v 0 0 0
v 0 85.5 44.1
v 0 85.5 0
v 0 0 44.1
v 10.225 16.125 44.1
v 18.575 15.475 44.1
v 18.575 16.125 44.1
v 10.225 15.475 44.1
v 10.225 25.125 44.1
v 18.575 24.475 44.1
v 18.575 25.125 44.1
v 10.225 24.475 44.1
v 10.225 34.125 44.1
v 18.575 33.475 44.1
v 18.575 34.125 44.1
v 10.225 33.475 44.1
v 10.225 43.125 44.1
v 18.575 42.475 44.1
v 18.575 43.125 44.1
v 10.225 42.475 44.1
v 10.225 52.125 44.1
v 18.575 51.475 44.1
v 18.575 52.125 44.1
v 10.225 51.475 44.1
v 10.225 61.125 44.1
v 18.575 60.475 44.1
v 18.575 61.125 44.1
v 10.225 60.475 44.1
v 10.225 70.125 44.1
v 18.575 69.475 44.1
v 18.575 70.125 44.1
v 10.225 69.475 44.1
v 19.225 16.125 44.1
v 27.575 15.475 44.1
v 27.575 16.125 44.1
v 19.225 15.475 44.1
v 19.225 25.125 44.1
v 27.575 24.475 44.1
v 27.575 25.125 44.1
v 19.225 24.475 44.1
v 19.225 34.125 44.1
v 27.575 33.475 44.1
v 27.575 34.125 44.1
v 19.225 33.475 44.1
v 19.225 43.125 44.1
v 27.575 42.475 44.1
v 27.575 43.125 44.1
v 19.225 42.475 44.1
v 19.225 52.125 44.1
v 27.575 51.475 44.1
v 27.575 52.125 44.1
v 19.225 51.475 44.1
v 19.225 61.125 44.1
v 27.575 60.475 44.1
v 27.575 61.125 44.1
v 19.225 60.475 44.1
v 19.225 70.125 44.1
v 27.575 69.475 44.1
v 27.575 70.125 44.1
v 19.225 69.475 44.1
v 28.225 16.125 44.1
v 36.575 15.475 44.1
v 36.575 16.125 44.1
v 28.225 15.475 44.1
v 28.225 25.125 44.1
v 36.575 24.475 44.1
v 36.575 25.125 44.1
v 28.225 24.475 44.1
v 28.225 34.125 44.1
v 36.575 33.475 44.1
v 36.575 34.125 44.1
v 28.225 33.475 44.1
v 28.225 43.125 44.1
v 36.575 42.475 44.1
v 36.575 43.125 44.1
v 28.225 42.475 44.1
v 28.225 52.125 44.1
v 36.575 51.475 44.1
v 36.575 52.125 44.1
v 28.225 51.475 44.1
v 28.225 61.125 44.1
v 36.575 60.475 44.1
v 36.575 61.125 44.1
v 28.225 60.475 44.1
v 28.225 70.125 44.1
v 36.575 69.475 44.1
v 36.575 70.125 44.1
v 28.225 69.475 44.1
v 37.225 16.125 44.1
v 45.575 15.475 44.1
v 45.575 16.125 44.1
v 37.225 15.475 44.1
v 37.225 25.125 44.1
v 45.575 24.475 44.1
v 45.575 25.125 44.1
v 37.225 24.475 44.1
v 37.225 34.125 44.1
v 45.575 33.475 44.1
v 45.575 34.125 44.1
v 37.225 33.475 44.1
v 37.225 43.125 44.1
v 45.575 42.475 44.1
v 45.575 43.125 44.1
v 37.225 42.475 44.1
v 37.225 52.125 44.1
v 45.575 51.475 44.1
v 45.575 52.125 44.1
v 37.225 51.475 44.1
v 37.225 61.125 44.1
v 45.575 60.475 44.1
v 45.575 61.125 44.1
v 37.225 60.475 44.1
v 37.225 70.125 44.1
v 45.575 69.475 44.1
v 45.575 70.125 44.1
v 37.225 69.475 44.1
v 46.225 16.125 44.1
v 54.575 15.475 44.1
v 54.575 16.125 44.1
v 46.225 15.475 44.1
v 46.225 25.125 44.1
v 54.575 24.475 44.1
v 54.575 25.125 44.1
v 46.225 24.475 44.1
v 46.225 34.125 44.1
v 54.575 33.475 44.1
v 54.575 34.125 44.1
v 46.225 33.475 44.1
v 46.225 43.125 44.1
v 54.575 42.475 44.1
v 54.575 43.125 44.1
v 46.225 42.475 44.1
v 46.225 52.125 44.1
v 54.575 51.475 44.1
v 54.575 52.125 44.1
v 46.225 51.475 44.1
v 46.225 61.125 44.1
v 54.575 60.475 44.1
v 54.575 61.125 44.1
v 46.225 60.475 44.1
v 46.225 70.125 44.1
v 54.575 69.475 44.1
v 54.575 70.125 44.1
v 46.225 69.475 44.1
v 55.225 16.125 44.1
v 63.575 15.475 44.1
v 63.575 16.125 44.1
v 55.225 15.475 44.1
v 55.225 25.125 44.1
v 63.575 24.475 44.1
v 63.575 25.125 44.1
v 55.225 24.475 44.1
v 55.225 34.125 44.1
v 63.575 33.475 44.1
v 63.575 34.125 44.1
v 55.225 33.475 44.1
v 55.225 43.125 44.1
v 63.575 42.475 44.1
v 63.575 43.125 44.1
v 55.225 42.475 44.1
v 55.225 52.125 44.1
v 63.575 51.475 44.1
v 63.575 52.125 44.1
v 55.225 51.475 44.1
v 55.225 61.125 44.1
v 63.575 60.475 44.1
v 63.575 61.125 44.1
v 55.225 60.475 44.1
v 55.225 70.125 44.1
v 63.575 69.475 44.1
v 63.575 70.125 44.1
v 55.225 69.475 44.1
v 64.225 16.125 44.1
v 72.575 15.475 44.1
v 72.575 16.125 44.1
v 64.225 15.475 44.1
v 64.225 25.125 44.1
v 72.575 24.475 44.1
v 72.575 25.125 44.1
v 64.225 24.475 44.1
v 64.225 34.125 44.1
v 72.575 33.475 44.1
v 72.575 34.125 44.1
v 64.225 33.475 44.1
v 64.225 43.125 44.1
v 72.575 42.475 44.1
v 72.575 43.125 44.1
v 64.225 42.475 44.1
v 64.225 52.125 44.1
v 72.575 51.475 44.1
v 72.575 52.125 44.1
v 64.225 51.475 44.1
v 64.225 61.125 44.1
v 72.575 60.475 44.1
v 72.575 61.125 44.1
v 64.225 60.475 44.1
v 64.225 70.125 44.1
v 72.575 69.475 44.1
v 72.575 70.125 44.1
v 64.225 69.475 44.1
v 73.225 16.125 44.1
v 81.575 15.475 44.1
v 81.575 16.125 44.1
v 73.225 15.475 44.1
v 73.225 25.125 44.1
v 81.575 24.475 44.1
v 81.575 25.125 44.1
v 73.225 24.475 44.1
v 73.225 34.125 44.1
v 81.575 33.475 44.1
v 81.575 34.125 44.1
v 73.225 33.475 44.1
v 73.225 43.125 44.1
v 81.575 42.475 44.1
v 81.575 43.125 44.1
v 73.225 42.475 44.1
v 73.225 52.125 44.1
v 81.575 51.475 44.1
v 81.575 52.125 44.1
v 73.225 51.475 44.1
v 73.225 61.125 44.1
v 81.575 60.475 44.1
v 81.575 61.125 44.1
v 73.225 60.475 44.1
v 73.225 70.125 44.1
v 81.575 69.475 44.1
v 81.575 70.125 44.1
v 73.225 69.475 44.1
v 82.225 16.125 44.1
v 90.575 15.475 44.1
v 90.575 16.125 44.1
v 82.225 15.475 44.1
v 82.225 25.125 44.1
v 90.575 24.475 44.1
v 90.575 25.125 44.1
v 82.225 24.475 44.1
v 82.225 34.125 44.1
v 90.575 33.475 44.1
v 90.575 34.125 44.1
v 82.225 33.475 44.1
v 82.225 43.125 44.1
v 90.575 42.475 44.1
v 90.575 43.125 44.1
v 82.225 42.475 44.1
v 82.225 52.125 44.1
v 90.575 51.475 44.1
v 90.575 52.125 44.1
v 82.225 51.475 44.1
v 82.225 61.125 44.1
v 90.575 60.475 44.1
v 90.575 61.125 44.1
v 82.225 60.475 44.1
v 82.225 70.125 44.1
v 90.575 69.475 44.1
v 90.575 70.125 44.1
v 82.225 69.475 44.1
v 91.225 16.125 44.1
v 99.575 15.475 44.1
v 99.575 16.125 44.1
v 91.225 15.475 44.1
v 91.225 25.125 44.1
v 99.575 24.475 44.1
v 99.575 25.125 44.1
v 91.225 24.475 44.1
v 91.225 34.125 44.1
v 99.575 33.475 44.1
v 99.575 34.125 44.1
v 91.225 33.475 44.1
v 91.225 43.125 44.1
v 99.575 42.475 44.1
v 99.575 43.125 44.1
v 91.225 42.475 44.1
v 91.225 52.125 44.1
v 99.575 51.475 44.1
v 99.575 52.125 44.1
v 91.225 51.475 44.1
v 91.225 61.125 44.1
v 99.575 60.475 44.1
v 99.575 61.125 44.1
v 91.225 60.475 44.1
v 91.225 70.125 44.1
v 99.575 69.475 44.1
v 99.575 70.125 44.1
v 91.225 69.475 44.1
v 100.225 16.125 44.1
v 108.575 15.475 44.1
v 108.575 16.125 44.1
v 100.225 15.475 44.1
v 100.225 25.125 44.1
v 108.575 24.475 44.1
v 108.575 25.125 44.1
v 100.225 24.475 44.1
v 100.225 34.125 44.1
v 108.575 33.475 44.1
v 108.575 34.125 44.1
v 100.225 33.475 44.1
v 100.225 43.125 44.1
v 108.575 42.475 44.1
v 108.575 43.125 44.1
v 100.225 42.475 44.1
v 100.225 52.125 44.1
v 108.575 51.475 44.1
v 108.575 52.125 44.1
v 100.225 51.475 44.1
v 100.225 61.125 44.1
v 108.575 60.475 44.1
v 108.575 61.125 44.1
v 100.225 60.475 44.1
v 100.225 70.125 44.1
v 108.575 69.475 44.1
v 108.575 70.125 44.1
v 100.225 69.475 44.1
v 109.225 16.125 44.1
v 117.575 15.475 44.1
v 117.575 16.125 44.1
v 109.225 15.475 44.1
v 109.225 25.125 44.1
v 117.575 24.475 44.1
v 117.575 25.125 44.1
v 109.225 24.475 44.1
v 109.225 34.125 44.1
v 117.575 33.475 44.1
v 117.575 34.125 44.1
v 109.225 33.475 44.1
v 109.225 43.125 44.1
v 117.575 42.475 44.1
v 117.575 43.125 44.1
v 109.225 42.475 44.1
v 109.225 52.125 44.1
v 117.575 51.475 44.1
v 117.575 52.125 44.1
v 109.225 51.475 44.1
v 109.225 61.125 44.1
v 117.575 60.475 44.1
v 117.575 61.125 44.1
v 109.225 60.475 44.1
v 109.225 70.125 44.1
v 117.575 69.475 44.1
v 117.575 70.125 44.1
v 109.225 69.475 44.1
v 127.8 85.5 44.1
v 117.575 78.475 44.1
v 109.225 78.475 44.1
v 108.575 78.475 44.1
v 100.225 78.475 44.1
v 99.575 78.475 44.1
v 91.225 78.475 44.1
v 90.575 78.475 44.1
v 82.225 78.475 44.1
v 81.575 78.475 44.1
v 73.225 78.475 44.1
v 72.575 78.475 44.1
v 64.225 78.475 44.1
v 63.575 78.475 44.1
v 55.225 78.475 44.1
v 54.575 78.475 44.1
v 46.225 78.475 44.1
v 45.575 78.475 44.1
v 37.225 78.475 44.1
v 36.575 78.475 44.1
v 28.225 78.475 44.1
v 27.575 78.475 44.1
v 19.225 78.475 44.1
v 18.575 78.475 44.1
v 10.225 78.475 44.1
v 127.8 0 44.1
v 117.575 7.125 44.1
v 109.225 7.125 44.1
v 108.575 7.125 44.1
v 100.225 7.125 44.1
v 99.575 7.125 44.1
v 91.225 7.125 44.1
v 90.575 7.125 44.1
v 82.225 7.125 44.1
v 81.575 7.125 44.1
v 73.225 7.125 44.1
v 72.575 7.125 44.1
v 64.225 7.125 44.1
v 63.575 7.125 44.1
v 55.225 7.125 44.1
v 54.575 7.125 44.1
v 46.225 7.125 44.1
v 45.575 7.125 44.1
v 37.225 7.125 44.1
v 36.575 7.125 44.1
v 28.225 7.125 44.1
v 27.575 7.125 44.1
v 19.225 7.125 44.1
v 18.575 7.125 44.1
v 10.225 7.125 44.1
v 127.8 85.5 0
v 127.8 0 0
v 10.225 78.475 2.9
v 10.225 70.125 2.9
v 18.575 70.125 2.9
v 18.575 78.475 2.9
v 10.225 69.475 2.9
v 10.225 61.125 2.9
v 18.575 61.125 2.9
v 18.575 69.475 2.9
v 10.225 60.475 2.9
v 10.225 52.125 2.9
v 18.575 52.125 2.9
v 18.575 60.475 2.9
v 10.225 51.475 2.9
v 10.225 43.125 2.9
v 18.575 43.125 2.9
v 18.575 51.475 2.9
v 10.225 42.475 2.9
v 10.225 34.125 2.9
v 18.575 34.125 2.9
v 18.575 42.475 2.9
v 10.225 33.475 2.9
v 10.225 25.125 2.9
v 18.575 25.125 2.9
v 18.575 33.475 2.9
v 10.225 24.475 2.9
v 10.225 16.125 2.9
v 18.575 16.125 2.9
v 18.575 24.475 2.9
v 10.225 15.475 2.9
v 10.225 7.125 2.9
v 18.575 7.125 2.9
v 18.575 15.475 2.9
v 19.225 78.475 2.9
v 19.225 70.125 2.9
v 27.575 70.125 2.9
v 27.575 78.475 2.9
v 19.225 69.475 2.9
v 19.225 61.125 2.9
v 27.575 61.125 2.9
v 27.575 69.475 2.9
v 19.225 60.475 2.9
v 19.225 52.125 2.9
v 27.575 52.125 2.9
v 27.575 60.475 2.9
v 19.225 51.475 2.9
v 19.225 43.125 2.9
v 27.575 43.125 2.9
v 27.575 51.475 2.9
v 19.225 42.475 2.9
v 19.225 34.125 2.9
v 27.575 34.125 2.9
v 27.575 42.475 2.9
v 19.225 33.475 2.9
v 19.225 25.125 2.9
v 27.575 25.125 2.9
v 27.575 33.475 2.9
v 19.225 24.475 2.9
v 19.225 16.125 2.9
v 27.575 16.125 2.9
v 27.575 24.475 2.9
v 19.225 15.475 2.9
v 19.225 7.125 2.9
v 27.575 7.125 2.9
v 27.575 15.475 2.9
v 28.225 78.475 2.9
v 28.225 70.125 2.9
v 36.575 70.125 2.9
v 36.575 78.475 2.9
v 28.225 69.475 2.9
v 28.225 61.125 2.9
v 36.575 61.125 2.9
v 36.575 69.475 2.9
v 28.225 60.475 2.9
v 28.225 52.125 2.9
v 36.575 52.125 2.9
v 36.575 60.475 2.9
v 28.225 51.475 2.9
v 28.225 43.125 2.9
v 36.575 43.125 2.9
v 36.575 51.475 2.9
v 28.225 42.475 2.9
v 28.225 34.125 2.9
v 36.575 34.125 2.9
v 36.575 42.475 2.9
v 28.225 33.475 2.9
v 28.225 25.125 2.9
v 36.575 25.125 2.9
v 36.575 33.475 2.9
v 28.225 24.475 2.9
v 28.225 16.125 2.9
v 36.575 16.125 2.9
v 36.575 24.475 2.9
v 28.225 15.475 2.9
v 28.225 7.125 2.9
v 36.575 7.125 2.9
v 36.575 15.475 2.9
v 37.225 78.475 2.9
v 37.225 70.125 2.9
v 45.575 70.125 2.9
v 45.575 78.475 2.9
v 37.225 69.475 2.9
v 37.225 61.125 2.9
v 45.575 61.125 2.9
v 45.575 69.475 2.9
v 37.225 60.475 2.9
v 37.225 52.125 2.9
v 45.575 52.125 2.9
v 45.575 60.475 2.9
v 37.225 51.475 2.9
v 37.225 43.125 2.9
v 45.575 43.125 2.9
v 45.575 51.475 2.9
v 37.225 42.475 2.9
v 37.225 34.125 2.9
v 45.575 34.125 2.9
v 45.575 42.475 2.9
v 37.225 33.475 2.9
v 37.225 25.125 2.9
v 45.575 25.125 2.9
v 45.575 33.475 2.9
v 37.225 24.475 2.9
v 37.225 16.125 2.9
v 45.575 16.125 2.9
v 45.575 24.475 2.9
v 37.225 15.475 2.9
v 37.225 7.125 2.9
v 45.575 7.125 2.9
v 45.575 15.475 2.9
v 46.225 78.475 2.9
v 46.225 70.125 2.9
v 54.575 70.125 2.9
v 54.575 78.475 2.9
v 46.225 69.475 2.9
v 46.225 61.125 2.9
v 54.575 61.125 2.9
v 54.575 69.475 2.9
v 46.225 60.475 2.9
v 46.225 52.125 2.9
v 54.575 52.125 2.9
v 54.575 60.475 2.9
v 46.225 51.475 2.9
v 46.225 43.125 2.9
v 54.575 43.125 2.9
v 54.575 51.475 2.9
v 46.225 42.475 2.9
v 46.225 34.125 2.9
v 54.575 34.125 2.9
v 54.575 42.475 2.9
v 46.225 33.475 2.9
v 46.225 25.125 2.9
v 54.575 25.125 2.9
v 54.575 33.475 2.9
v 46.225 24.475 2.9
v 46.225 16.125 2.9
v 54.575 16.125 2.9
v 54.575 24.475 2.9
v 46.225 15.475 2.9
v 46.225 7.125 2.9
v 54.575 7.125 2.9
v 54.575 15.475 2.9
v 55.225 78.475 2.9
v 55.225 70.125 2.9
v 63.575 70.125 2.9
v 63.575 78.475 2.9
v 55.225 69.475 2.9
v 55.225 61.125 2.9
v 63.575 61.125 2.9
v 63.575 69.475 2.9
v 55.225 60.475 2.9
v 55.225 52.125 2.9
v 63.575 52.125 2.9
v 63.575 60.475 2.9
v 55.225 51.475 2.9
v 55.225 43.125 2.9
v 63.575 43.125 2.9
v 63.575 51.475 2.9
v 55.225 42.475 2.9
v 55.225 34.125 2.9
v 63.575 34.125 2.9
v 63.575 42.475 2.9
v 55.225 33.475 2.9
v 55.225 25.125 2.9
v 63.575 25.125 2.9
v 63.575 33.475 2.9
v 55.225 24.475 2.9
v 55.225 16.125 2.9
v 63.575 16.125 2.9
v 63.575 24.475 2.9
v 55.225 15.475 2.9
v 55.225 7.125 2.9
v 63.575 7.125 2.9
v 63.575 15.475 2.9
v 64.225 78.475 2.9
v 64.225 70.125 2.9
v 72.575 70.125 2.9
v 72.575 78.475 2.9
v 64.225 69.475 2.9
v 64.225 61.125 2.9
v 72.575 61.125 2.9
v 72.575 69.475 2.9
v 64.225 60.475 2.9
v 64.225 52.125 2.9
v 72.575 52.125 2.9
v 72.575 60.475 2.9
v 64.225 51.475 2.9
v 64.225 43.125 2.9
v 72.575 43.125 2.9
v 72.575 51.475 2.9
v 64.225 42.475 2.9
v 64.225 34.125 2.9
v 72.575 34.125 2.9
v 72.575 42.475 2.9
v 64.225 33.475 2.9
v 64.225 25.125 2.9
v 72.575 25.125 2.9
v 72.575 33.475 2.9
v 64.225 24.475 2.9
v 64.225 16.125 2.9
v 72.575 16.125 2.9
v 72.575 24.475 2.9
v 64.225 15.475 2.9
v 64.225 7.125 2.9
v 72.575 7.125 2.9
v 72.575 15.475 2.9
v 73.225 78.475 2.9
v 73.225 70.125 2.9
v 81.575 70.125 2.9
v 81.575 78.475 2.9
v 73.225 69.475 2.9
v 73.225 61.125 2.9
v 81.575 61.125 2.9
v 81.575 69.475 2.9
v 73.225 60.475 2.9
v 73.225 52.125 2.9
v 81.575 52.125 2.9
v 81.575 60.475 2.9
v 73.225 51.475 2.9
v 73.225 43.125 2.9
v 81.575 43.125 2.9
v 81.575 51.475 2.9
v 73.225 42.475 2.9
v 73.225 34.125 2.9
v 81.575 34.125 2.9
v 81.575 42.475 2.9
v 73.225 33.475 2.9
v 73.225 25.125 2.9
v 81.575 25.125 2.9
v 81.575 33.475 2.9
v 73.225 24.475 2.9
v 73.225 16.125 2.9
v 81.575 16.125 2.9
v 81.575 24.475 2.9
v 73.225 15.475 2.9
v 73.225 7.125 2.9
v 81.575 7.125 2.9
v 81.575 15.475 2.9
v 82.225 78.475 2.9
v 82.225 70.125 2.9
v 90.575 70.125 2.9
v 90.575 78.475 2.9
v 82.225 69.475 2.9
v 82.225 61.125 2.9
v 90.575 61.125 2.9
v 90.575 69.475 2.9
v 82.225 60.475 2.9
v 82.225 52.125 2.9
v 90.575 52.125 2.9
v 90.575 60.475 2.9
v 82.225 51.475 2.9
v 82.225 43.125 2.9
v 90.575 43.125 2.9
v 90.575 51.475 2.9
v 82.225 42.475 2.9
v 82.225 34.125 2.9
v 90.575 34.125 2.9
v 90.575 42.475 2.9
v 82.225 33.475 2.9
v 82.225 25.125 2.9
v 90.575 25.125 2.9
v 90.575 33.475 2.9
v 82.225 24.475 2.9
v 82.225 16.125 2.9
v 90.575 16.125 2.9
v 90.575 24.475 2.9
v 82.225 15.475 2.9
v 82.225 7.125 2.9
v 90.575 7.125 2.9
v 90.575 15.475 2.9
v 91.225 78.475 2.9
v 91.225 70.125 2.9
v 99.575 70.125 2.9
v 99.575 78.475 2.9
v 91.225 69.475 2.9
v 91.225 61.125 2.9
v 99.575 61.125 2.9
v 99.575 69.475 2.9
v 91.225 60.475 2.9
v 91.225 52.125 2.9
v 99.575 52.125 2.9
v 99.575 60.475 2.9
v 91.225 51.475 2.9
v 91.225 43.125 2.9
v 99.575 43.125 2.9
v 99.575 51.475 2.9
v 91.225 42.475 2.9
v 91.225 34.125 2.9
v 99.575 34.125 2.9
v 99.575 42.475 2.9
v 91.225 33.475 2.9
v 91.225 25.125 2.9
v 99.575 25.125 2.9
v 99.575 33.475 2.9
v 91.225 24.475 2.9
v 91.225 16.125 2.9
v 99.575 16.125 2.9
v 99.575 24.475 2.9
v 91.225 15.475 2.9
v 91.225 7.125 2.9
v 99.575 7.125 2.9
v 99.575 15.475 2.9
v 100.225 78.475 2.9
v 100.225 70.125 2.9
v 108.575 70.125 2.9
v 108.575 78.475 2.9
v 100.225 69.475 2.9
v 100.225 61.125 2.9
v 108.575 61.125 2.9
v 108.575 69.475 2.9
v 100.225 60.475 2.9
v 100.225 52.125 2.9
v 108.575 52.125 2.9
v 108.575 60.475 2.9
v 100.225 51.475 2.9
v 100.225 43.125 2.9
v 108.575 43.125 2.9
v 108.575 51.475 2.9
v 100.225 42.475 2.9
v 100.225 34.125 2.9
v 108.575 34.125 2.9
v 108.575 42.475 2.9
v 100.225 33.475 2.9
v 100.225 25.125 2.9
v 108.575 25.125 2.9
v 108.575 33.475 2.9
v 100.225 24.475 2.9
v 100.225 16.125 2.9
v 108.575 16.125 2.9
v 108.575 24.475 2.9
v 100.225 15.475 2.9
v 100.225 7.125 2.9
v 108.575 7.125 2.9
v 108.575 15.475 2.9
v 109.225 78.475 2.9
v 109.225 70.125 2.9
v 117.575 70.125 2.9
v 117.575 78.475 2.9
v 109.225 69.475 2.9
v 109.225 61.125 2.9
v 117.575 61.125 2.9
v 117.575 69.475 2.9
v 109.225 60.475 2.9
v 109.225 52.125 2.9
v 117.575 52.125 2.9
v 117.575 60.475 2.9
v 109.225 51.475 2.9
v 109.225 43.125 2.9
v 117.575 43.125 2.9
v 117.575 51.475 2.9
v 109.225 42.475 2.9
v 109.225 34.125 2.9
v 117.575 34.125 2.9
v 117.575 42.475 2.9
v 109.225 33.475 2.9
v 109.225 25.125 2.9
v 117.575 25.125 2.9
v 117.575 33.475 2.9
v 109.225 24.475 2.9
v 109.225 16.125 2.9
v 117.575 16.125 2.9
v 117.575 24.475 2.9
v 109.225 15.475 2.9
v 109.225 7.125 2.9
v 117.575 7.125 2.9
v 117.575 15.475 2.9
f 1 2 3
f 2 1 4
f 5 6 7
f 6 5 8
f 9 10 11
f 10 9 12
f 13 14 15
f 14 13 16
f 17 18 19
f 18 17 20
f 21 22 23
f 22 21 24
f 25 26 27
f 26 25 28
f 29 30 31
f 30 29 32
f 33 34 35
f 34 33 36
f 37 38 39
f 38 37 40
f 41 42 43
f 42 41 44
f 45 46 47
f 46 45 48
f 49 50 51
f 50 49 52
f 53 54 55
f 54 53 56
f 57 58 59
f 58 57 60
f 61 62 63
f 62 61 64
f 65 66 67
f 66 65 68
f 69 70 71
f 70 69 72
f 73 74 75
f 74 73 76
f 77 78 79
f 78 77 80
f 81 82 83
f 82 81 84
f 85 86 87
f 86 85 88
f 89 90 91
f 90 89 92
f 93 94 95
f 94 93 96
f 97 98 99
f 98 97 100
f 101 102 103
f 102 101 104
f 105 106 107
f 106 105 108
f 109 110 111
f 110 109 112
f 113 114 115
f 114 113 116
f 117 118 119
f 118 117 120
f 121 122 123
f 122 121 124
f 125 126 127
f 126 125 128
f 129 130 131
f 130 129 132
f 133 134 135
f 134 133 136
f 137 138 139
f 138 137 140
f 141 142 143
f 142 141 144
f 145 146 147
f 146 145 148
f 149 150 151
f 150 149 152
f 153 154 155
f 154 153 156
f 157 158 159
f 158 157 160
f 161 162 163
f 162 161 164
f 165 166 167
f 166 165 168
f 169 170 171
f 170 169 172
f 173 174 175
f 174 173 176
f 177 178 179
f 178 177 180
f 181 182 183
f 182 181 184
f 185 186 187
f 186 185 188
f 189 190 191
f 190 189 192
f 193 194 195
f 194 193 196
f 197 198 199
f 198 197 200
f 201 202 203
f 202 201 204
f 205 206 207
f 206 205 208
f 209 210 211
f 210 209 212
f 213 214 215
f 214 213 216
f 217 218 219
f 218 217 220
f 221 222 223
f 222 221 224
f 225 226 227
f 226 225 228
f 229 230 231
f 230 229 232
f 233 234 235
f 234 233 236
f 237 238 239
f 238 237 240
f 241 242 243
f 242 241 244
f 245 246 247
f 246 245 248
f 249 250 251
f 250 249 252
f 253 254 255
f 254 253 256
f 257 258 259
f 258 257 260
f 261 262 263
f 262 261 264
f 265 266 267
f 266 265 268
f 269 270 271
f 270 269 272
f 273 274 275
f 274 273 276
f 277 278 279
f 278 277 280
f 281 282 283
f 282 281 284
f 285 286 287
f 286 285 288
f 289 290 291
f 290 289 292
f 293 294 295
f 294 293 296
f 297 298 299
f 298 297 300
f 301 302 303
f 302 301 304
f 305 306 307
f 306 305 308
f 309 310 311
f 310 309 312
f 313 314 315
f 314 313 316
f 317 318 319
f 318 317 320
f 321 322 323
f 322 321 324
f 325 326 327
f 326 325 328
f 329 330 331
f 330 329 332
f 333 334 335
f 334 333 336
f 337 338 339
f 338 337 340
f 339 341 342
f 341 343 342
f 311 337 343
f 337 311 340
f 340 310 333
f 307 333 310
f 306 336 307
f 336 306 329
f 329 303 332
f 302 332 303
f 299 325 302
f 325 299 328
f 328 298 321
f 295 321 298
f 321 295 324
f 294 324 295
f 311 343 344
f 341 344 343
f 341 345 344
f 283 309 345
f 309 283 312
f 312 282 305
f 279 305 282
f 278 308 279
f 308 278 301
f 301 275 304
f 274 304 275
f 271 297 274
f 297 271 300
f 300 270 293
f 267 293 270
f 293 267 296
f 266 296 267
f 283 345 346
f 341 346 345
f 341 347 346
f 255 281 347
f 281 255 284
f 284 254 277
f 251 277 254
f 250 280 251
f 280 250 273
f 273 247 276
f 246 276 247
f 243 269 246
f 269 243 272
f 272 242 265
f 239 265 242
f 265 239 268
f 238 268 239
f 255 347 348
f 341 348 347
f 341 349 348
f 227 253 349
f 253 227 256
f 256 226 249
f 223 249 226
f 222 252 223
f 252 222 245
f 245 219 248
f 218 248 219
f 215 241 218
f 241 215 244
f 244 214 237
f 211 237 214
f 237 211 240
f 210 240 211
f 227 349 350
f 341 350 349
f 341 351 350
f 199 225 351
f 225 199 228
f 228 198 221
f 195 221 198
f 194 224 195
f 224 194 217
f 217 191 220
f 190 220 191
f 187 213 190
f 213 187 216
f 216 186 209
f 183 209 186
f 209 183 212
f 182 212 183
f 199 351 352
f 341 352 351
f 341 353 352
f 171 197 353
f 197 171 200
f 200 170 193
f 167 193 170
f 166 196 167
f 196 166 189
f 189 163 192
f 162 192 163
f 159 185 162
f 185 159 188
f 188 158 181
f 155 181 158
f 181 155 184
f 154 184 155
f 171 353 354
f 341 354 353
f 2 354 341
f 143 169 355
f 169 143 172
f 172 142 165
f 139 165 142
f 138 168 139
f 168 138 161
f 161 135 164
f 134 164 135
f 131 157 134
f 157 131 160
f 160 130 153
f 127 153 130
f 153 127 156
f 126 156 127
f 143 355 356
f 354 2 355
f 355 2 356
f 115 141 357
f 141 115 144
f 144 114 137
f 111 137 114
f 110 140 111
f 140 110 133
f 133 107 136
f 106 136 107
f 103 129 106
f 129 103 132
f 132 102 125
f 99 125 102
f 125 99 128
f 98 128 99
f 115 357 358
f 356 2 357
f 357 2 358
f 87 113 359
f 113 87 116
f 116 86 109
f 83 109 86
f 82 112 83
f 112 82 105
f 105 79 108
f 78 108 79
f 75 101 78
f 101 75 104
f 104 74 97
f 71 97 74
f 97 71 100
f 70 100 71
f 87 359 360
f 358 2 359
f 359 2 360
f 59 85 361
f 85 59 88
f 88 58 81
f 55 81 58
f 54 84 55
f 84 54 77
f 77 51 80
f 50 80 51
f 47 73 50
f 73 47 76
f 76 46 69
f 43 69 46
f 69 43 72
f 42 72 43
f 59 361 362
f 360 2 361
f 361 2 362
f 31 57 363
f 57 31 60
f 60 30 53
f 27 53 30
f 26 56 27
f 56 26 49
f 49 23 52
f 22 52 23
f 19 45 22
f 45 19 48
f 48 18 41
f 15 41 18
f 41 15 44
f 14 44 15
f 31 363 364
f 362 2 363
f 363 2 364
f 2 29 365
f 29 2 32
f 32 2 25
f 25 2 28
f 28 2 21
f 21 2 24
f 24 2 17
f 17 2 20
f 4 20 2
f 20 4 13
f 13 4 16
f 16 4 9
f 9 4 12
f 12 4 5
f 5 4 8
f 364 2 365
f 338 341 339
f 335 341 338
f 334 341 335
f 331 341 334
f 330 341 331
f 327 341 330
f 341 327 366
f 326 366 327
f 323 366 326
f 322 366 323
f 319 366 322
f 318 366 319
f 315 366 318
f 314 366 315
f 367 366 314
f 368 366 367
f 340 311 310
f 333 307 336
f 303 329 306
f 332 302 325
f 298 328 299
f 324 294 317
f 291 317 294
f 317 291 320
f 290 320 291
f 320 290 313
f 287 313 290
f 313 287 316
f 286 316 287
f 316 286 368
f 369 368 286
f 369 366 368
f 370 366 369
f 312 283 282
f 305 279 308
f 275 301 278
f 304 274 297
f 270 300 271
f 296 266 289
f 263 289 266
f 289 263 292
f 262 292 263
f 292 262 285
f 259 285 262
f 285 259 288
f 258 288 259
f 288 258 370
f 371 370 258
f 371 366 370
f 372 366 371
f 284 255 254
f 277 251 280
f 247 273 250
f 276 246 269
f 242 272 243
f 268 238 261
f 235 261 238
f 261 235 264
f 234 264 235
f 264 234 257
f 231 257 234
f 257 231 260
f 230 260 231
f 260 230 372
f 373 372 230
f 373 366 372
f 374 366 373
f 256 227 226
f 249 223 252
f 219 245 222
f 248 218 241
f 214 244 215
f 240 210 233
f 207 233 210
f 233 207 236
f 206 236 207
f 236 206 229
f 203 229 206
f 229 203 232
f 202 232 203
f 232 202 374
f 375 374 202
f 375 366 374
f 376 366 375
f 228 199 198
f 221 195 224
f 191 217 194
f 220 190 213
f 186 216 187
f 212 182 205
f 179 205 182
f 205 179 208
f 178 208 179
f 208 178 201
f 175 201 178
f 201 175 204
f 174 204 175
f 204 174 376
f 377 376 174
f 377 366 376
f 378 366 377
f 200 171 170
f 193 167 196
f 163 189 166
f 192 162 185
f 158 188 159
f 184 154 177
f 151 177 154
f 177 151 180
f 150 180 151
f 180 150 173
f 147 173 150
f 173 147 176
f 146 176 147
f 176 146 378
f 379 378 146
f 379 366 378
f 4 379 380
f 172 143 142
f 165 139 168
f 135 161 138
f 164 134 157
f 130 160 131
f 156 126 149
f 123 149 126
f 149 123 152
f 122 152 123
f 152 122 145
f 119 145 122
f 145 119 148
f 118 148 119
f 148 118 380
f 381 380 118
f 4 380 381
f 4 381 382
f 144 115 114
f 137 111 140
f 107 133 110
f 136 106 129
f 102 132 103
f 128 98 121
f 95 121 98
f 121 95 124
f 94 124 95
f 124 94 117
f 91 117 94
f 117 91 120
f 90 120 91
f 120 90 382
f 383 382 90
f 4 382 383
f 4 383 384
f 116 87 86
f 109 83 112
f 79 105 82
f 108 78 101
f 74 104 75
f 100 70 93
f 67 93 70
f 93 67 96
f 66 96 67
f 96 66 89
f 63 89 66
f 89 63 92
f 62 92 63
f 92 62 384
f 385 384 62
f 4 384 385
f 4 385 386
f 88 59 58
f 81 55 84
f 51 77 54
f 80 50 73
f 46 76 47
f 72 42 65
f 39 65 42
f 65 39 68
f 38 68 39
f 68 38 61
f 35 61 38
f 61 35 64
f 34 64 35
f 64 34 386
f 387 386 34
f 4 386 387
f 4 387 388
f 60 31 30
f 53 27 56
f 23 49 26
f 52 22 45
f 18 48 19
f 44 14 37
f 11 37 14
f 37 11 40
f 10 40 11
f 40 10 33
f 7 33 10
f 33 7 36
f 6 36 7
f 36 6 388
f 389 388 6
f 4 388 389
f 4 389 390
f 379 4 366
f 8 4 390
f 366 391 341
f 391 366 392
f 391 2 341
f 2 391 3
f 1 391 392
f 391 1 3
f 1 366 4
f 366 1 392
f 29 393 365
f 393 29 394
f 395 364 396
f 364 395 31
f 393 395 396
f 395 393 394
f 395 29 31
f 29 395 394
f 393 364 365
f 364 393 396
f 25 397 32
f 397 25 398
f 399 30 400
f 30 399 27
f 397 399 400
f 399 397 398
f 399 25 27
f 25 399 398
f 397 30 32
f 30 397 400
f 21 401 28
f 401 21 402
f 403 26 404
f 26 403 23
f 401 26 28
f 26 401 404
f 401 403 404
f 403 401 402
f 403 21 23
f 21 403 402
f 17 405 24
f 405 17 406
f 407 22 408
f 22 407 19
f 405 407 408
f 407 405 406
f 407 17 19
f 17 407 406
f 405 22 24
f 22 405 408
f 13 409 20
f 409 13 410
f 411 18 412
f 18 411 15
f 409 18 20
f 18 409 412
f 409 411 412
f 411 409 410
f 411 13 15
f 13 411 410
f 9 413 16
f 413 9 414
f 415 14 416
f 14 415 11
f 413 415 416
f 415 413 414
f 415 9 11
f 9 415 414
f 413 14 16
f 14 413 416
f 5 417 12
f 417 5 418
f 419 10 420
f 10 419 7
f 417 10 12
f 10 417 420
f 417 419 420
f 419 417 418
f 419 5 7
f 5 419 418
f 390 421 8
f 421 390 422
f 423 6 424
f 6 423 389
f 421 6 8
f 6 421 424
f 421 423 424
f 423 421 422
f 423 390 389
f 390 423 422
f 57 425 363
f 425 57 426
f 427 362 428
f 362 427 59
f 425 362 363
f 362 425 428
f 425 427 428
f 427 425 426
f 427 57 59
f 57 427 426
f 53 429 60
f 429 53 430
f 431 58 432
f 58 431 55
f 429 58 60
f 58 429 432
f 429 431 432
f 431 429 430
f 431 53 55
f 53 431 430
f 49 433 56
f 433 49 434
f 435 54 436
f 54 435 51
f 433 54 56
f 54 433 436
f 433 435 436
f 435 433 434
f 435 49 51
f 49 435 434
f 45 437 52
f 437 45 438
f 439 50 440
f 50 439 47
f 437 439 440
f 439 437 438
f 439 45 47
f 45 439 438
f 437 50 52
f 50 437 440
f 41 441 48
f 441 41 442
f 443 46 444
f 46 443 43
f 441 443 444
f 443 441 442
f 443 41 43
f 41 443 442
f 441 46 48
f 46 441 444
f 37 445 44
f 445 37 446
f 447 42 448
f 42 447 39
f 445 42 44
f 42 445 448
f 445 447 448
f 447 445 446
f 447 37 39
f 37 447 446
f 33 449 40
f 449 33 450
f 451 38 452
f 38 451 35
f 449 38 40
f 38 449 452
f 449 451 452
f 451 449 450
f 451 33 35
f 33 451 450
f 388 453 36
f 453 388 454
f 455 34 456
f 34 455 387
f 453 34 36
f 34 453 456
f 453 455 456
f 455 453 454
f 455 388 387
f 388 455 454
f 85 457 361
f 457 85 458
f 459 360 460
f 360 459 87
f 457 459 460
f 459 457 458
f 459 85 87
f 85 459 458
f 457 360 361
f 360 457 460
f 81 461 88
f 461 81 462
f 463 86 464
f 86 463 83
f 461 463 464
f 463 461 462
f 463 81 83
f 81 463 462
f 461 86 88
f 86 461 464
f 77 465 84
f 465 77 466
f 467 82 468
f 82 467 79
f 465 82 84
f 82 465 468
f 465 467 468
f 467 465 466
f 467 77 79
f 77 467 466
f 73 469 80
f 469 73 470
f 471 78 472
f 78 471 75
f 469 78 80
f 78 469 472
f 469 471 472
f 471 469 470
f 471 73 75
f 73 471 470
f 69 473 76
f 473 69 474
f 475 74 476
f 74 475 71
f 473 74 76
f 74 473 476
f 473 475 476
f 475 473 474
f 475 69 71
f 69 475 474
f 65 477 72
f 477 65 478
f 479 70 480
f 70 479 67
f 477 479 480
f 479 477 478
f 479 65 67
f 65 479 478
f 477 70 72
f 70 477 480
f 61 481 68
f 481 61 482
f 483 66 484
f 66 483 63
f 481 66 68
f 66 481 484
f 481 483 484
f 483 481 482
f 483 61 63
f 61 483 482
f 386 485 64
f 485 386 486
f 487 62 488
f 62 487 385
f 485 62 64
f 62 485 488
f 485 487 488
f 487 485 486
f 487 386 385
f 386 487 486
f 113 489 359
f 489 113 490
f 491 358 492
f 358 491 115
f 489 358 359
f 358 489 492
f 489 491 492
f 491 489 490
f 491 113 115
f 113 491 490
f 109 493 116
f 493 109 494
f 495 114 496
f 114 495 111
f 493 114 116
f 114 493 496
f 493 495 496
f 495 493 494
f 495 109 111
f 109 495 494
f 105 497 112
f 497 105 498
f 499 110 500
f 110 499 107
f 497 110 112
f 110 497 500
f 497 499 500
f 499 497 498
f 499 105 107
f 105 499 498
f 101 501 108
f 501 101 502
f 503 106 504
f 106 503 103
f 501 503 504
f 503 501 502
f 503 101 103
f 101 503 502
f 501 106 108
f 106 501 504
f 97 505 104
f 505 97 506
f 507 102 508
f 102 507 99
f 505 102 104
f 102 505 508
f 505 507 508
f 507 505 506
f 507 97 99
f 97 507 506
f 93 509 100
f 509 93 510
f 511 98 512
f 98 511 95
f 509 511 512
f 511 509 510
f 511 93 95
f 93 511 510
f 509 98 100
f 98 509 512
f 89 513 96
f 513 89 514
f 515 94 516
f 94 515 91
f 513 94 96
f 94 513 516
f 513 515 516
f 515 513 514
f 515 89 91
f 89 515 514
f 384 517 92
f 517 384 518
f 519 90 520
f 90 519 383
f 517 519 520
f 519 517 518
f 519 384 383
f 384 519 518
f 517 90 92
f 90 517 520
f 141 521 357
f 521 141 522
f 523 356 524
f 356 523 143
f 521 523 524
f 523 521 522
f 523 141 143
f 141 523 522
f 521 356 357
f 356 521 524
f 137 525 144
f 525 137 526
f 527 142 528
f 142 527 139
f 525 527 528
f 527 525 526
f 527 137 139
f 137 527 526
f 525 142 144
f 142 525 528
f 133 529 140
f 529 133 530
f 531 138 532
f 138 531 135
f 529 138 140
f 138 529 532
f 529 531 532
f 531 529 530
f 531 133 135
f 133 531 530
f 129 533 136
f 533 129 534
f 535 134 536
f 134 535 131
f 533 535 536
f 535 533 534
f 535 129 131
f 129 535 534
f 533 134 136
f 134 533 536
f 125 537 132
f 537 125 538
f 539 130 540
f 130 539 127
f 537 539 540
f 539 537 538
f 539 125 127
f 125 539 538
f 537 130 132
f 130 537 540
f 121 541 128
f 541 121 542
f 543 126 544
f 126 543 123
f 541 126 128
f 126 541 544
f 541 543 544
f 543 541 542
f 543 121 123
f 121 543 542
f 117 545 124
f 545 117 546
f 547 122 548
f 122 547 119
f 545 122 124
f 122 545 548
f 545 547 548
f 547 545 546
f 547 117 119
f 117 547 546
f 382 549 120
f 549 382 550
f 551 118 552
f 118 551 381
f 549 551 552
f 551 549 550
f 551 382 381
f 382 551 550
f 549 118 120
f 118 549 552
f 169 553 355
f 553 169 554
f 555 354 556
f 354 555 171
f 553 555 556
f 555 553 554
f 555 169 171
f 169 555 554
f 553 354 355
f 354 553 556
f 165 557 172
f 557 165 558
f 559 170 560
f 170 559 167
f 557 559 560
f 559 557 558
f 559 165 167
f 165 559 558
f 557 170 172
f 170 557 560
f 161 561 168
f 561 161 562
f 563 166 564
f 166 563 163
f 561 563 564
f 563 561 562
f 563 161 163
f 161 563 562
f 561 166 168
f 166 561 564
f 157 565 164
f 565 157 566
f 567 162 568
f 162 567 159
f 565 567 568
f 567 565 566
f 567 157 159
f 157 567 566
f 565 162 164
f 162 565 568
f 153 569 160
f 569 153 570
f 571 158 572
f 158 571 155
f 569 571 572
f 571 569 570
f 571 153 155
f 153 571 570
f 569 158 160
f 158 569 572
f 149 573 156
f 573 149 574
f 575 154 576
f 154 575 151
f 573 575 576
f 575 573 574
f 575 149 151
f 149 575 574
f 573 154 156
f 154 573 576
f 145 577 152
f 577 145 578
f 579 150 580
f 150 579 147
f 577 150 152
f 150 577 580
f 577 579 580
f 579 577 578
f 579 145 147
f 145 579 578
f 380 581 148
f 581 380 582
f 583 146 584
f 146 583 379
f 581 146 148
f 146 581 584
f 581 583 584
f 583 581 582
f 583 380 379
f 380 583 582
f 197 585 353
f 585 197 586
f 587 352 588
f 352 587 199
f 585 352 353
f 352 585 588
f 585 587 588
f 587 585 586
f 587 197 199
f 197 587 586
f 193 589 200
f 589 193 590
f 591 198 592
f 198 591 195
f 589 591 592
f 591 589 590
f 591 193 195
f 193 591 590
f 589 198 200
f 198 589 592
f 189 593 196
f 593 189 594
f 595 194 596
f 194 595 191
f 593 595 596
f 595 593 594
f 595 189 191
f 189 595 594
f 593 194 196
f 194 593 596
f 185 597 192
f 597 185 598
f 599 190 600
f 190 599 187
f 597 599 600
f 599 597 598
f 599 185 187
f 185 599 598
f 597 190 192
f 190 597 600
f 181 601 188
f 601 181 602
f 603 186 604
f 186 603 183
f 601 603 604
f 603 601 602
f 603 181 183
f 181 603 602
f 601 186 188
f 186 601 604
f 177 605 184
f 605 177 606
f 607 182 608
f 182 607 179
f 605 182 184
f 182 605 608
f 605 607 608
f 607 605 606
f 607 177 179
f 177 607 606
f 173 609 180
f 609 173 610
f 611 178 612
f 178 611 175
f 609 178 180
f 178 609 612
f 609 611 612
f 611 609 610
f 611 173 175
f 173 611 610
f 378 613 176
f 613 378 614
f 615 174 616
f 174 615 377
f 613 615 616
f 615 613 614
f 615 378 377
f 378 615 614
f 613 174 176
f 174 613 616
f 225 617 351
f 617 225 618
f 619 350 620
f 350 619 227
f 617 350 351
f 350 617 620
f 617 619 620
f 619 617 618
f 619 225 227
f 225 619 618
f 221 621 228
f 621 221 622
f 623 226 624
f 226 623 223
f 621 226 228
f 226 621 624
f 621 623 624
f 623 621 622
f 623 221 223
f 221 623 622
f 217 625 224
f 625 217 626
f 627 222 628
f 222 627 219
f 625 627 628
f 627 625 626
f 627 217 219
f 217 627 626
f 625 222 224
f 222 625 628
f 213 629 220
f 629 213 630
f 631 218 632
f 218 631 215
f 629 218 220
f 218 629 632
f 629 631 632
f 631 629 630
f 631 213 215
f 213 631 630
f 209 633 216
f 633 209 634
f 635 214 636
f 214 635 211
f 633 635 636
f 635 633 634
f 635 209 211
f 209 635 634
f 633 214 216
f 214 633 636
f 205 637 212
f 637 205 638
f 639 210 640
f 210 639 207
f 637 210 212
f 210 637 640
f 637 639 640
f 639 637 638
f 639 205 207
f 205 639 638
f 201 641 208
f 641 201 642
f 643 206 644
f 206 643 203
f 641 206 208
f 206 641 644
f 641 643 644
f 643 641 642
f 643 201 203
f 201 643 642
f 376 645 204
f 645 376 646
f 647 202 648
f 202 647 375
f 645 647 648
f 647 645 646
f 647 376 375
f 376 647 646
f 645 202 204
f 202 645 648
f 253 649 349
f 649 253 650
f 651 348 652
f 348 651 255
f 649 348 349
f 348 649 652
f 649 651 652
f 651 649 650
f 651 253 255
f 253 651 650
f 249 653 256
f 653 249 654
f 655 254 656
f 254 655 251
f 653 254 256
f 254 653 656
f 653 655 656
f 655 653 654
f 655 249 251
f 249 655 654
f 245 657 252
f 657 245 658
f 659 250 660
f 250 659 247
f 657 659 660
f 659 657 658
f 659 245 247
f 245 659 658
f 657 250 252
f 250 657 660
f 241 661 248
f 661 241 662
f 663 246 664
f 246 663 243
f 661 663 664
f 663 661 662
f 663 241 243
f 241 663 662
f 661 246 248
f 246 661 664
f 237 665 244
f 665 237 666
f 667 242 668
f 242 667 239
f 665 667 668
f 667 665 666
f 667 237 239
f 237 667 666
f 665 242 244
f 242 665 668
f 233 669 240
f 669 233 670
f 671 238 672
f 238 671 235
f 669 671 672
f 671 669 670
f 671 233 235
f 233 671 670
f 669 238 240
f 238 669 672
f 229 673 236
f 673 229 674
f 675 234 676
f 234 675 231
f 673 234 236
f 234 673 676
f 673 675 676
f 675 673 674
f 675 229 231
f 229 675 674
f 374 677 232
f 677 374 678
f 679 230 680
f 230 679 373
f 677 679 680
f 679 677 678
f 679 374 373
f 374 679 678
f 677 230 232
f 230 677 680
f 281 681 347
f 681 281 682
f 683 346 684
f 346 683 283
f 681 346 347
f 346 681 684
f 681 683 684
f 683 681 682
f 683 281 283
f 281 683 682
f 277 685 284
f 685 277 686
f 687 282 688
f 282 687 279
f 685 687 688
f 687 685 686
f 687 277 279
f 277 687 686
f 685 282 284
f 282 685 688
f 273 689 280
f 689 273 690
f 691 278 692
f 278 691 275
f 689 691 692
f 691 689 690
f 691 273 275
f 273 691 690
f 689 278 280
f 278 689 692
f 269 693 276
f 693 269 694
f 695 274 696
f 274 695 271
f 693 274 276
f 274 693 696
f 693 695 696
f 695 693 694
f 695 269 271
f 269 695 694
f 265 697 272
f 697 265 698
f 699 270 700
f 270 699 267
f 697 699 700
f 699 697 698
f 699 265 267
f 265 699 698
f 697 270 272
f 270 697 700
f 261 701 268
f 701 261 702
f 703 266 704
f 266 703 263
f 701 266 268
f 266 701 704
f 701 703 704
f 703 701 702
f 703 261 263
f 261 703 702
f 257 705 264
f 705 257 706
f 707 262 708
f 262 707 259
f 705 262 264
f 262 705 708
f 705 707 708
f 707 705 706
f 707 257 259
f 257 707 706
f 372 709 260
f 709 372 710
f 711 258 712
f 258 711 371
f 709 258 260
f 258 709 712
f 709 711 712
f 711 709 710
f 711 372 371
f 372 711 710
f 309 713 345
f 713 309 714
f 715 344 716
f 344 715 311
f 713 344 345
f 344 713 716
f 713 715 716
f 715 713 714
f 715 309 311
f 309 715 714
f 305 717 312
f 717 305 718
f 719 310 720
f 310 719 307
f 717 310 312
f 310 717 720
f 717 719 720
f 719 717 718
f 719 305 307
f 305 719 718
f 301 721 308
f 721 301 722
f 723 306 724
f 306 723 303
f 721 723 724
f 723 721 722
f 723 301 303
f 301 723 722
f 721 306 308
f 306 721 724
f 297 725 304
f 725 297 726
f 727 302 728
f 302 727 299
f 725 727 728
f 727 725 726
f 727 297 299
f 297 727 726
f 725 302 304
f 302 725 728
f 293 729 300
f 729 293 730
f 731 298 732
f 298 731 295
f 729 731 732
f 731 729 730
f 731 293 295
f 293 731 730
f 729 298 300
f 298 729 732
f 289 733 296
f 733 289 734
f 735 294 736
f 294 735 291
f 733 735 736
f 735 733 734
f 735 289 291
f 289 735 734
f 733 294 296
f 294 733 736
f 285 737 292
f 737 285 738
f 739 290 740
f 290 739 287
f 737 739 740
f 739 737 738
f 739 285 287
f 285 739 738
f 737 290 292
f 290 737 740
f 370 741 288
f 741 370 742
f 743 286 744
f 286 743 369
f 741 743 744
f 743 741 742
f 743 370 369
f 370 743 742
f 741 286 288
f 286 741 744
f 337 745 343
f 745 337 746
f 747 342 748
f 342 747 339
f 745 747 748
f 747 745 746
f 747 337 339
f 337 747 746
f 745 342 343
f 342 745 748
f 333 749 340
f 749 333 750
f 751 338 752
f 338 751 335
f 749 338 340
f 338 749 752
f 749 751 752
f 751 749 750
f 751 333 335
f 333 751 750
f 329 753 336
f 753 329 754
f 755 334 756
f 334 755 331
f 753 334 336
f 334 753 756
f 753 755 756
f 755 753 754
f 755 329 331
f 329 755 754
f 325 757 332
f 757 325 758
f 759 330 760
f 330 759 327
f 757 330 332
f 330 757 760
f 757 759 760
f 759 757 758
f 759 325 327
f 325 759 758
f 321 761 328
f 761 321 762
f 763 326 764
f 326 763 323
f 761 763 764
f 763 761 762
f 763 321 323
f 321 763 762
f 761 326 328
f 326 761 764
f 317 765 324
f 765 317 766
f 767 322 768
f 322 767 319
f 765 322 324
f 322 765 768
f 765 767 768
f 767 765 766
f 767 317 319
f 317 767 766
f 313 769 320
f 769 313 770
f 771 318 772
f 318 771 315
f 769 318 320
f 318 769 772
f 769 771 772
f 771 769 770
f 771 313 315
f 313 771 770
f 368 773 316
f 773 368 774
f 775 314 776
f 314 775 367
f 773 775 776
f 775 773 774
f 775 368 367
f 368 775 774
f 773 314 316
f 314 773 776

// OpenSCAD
// Eppendorf 96 Protein LoBind Deepwell Plate 2 mL
// loadName: eppendorf_96_wellplate_2000ul_lobind
// Auto-generated by labware_to_stl.py from Opentrons V2 labware definition

$fn = 8;

difference() {
    // ── Labware body ──────────────────────────────────────────────
    cube([127.8000, 85.5000, 44.1000]);

    // ── Well cutouts ──────────────────────────────────────────────
    // Well A1
    translate([10.2250, 70.1250, 2.9000])
        cube([8.3500, 8.3500, 42.2000]);
    // Well B1
    translate([10.2250, 61.1250, 2.9000])
        cube([8.3500, 8.3500, 42.2000]);
    // Well C1
    translate([10.2250, 52.1250, 2.9000])
        cube([8.3500, 8.3500, 42.2000]);
    // Well D1
    translate([10.2250, 43.1250, 2.9000])
        cube([8.3500, 8.3500, 42.2000]);
    // Well E1
    translate([10.2250, 34.1250, 2.9000])
        cube([8.3500, 8.3500, 42.2000]);
    // Well F1
    translate([10.2250, 25.1250, 2.9000])
        cube([8.3500, 8.3500, 42.2000]);
    // Well G1
    translate([10.2250, 16.1250, 2.9000])
        cube([8.3500, 8.3500, 42.2000]);
    // Well H1
    translate([10.2250, 7.1250, 2.9000])
        cube([8.3500, 8.3500, 42.2000]);
    // Well A2
    translate([19.2250, 70.1250, 2.9000])
        cube([8.3500, 8.3500, 42.2000]);
    // Well B2
    translate([19.2250, 61.1250, 2.9000])
        cube([8.3500, 8.3500, 42.2000]);
    // Well C2
    translate([19.2250, 52.1250, 2.9000])
        cube([8.3500, 8.3500, 42.2000]);
    // Well D2
    translate([19.2250, 43.1250, 2.9000])
        cube([8.3500, 8.3500, 42.2000]);
    // Well E2
    translate([19.2250, 34.1250, 2.9000])
        cube([8.3500, 8.3500, 42.2000]);
    // Well F2
    translate([19.2250, 25.1250, 2.9000])
        cube([8.3500, 8.3500, 42.2000]);
    // Well G2
    translate([19.2250, 16.1250, 2.9000])
        cube([8.3500, 8.3500, 42.2000]);
    // Well H2
    translate([19.2250, 7.1250, 2.9000])
        cube([8.3500, 8.3500, 42.2000]);
    // Well A3
    translate([28.2250, 70.1250, 2.9000])
        cube([8.3500, 8.3500, 42.2000]);
    // Well B3
    translate([28.2250, 61.1250, 2.9000])
        cube([8.3500, 8.3500, 42.2000]);
    // Well C3
    translate([28.2250, 52.1250, 2.9000])
        cube([8.3500, 8.3500, 42.2000]);
    // Well D3
    translate([28.2250, 43.1250, 2.9000])
        cube([8.3500, 8.3500, 42.2000]);
    // Well E3
    translate([28.2250, 34.1250, 2.9000])
        cube([8.3500, 8.3500, 42.2000]);
    // Well F3
    translate([28.2250, 25.1250, 2.9000])
        cube([8.3500, 8.3500, 42.2000]);
    // Well G3
    translate([28.2250, 16.1250, 2.9000])
        cube([8.3500, 8.3500, 42.2000]);
    // Well H3
    translate([28.2250, 7.1250, 2.9000])
        cube([8.3500, 8.3500, 42.2000]);
    // Well A4
    translate([37.2250, 70.1250, 2.9000])
        cube([8.3500, 8.3500, 42.2000]);
    // Well B4
    translate([37.2250, 61.1250, 2.9000])
        cube([8.3500, 8.3500, 42.2000]);
    // Well C4
    translate([37.2250, 52.1250, 2.9000])
        cube([8.3500, 8.3500, 42.2000]);
    // Well D4
    translate([37.2250, 43.1250, 2.9000])
        cube([8.3500, 8.3500, 42.2000]);
    // Well E4
    translate([37.2250, 34.1250, 2.9000])
        cube([8.3500, 8.3500, 42.2000]);
    // Well F4
    translate([37.2250, 25.1250, 2.9000])
        cube([8.3500, 8.3500, 42.2000]);
    // Well G4
    translate([37.2250, 16.1250, 2.9000])
        cube([8.3500, 8.3500, 42.2000]);
    // Well H4
    translate([37.2250, 7.1250, 2.9000])
        cube([8.3500, 8.3500, 42.2000]);
    // Well A5
    translate([46.2250, 70.1250, 2.9000])
        cube([8.3500, 8.3500, 42.2000]);
    // Well B5
    translate([46.2250, 61.1250, 2.9000])
        cube([8.3500, 8.3500, 42.2000]);
    // Well C5
    translate([46.2250, 52.1250, 2.9000])
        cube([8.3500, 8.3500, 42.2000]);
    // Well D5
    translate([46.2250, 43.1250, 2.9000])
        cube([8.3500, 8.3500, 42.2000]);
    // Well E5
    translate([46.2250, 34.1250, 2.9000])
        cube([8.3500, 8.3500, 42.2000]);
    // Well F5
    translate([46.2250, 25.1250, 2.9000])
        cube([8.3500, 8.3500, 42.2000]);
    // Well G5
    translate([46.2250, 16.1250, 2.9000])
        cube([8.3500, 8.3500, 42.2000]);
    // Well H5
    translate([46.2250, 7.1250, 2.9000])
        cube([8.3500, 8.3500, 42.2000]);
    // Well A6
    translate([55.2250, 70.1250, 2.9000])
        cube([8.3500, 8.3500, 42.2000]);
    // Well B6
    translate([55.2250, 61.1250, 2.9000])
        cube([8.3500, 8.3500, 42.2000]);
    // Well C6
    translate([55.2250, 52.1250, 2.9000])
        cube([8.3500, 8.3500, 42.2000]);
    // Well D6
    translate([55.2250, 43.1250, 2.9000])
        cube([8.3500, 8.3500, 42.2000]);
    // Well E6
    translate([55.2250, 34.1250, 2.9000])
        cube([8.3500, 8.3500, 42.2000]);
    // Well F6
    translate([55.2250, 25.1250, 2.9000])
        cube([8.3500, 8.3500, 42.2000]);
    // Well G6
    translate([55.2250, 16.1250, 2.9000])
        cube([8.3500, 8.3500, 42.2000]);
    // Well H6
    translate([55.2250, 7.1250, 2.9000])
        cube([8.3500, 8.3500, 42.2000]);
    // Well A7
    translate([64.2250, 70.1250, 2.9000])
        cube([8.3500, 8.3500, 42.2000]);
    // Well B7
    translate([64.2250, 61.1250, 2.9000])
        cube([8.3500, 8.3500, 42.2000]);
    // Well C7
    translate([64.2250, 52.1250, 2.9000])
        cube([8.3500, 8.3500, 42.2000]);
    // Well D7
    translate([64.2250, 43.1250, 2.9000])
        cube([8.3500, 8.3500, 42.2000]);
    // Well E7
    translate([64.2250, 34.1250, 2.9000])
        cube([8.3500, 8.3500, 42.2000]);
    // Well F7
    translate([64.2250, 25.1250, 2.9000])
        cube([8.3500, 8.3500, 42.2000]);
    // Well G7
    translate([64.2250, 16.1250, 2.9000])
        cube([8.3500, 8.3500, 42.2000]);
    // Well H7
    translate([64.2250, 7.1250, 2.9000])
        cube([8.3500, 8.3500, 42.2000]);
    // Well A8
    translate([73.2250, 70.1250, 2.9000])
        cube([8.3500, 8.3500, 42.2000]);
    // Well B8
    translate([73.2250, 61.1250, 2.9000])
        cube([8.3500, 8.3500, 42.2000]);
    // Well C8
    translate([73.2250, 52.1250, 2.9000])
        cube([8.3500, 8.3500, 42.2000]);
    // Well D8
    translate([73.2250, 43.1250, 2.9000])
        cube([8.3500, 8.3500, 42.2000]);
    // Well E8
    translate([73.2250, 34.1250, 2.9000])
        cube([8.3500, 8.3500, 42.2000]);
    // Well F8
    translate([73.2250, 25.1250, 2.9000])
        cube([8.3500, 8.3500, 42.2000]);
    // Well G8
    translate([73.2250, 16.1250, 2.9000])
        cube([8.3500, 8.3500, 42.2000]);
    // Well H8
    translate([73.2250, 7.1250, 2.9000])
        cube([8.3500, 8.3500, 42.2000]);
    // Well A9
    translate([82.2250, 70.1250, 2.9000])
        cube([8.3500, 8.3500, 42.2000]);
    // Well B9
    translate([82.2250, 61.1250, 2.9000])
        cube([8.3500, 8.3500, 42.2000]);
    // Well C9
    translate([82.2250, 52.1250, 2.9000])
        cube([8.3500, 8.3500, 42.2000]);
    // Well D9
    translate([82.2250, 43.1250, 2.9000])
        cube([8.3500, 8.3500, 42.2000]);
    // Well E9
    translate([82.2250, 34.1250, 2.9000])
        cube([8.3500, 8.3500, 42.2000]);
    // Well F9
    translate([82.2250, 25.1250, 2.9000])
        cube([8.3500, 8.3500, 42.2000]);
    // Well G9
    translate([82.2250, 16.1250, 2.9000])
        cube([8.3500, 8.3500, 42.2000]);
    // Well H9
    translate([82.2250, 7.1250, 2.9000])
        cube([8.3500, 8.3500, 42.2000]);
    // Well A10
    translate([91.2250, 70.1250, 2.9000])
        cube([8.3500, 8.3500, 42.2000]);
    // Well B10
    translate([91.2250, 61.1250, 2.9000])
        cube([8.3500, 8.3500, 42.2000]);
    // Well C10
    translate([91.2250, 52.1250, 2.9000])
        cube([8.3500, 8.3500, 42.2000]);
    // Well D10
    translate([91.2250, 43.1250, 2.9000])
        cube([8.3500, 8.3500, 42.2000]);
    // Well E10
    translate([91.2250, 34.1250, 2.9000])
        cube([8.3500, 8.3500, 42.2000]);
    // Well F10
    translate([91.2250, 25.1250, 2.9000])
        cube([8.3500, 8.3500, 42.2000]);
    // Well G10
    translate([91.2250, 16.1250, 2.9000])
        cube([8.3500, 8.3500, 42.2000]);
    // Well H10
    translate([91.2250, 7.1250, 2.9000])
        cube([8.3500, 8.3500, 42.2000]);
    // Well A11
    translate([100.2250, 70.1250, 2.9000])
        cube([8.3500, 8.3500, 42.2000]);
    // Well B11
    translate([100.2250, 61.1250, 2.9000])
        cube([8.3500, 8.3500, 42.2000]);
    // Well C11
    translate([100.2250, 52.1250, 2.9000])
        cube([8.3500, 8.3500, 42.2000]);
    // Well D11
    translate([100.2250, 43.1250, 2.9000])
        cube([8.3500, 8.3500, 42.2000]);
    // Well E11
    translate([100.2250, 34.1250, 2.9000])
        cube([8.3500, 8.3500, 42.2000]);
    // Well F11
    translate([100.2250, 25.1250, 2.9000])
        cube([8.3500, 8.3500, 42.2000]);
    // Well G11
    translate([100.2250, 16.1250, 2.9000])
        cube([8.3500, 8.3500, 42.2000]);
    // Well H11
    translate([100.2250, 7.1250, 2.9000])
        cube([8.3500, 8.3500, 42.2000]);
    // Well A12
    translate([109.2250, 70.1250, 2.9000])
        cube([8.3500, 8.3500, 42.2000]);
    // Well B12
    translate([109.2250, 61.1250, 2.9000])
        cube([8.3500, 8.3500, 42.2000]);
    // Well C12
    translate([109.2250, 52.1250, 2.9000])
        cube([8.3500, 8.3500, 42.2000]);
    // Well D12
    translate([109.2250, 43.1250, 2.9000])
        cube([8.3500, 8.3500, 42.2000]);
    // Well E12
    translate([109.2250, 34.1250, 2.9000])
        cube([8.3500, 8.3500, 42.2000]);
    // Well F12
    translate([109.2250, 25.1250, 2.9000])
        cube([8.3500, 8.3500, 42.2000]);
    // Well G12
    translate([109.2250, 16.1250, 2.9000])
        cube([8.3500, 8.3500, 42.2000]);
    // Well H12
    translate([109.2250, 7.1250, 2.9000])
        cube([8.3500, 8.3500, 42.2000]);
}
